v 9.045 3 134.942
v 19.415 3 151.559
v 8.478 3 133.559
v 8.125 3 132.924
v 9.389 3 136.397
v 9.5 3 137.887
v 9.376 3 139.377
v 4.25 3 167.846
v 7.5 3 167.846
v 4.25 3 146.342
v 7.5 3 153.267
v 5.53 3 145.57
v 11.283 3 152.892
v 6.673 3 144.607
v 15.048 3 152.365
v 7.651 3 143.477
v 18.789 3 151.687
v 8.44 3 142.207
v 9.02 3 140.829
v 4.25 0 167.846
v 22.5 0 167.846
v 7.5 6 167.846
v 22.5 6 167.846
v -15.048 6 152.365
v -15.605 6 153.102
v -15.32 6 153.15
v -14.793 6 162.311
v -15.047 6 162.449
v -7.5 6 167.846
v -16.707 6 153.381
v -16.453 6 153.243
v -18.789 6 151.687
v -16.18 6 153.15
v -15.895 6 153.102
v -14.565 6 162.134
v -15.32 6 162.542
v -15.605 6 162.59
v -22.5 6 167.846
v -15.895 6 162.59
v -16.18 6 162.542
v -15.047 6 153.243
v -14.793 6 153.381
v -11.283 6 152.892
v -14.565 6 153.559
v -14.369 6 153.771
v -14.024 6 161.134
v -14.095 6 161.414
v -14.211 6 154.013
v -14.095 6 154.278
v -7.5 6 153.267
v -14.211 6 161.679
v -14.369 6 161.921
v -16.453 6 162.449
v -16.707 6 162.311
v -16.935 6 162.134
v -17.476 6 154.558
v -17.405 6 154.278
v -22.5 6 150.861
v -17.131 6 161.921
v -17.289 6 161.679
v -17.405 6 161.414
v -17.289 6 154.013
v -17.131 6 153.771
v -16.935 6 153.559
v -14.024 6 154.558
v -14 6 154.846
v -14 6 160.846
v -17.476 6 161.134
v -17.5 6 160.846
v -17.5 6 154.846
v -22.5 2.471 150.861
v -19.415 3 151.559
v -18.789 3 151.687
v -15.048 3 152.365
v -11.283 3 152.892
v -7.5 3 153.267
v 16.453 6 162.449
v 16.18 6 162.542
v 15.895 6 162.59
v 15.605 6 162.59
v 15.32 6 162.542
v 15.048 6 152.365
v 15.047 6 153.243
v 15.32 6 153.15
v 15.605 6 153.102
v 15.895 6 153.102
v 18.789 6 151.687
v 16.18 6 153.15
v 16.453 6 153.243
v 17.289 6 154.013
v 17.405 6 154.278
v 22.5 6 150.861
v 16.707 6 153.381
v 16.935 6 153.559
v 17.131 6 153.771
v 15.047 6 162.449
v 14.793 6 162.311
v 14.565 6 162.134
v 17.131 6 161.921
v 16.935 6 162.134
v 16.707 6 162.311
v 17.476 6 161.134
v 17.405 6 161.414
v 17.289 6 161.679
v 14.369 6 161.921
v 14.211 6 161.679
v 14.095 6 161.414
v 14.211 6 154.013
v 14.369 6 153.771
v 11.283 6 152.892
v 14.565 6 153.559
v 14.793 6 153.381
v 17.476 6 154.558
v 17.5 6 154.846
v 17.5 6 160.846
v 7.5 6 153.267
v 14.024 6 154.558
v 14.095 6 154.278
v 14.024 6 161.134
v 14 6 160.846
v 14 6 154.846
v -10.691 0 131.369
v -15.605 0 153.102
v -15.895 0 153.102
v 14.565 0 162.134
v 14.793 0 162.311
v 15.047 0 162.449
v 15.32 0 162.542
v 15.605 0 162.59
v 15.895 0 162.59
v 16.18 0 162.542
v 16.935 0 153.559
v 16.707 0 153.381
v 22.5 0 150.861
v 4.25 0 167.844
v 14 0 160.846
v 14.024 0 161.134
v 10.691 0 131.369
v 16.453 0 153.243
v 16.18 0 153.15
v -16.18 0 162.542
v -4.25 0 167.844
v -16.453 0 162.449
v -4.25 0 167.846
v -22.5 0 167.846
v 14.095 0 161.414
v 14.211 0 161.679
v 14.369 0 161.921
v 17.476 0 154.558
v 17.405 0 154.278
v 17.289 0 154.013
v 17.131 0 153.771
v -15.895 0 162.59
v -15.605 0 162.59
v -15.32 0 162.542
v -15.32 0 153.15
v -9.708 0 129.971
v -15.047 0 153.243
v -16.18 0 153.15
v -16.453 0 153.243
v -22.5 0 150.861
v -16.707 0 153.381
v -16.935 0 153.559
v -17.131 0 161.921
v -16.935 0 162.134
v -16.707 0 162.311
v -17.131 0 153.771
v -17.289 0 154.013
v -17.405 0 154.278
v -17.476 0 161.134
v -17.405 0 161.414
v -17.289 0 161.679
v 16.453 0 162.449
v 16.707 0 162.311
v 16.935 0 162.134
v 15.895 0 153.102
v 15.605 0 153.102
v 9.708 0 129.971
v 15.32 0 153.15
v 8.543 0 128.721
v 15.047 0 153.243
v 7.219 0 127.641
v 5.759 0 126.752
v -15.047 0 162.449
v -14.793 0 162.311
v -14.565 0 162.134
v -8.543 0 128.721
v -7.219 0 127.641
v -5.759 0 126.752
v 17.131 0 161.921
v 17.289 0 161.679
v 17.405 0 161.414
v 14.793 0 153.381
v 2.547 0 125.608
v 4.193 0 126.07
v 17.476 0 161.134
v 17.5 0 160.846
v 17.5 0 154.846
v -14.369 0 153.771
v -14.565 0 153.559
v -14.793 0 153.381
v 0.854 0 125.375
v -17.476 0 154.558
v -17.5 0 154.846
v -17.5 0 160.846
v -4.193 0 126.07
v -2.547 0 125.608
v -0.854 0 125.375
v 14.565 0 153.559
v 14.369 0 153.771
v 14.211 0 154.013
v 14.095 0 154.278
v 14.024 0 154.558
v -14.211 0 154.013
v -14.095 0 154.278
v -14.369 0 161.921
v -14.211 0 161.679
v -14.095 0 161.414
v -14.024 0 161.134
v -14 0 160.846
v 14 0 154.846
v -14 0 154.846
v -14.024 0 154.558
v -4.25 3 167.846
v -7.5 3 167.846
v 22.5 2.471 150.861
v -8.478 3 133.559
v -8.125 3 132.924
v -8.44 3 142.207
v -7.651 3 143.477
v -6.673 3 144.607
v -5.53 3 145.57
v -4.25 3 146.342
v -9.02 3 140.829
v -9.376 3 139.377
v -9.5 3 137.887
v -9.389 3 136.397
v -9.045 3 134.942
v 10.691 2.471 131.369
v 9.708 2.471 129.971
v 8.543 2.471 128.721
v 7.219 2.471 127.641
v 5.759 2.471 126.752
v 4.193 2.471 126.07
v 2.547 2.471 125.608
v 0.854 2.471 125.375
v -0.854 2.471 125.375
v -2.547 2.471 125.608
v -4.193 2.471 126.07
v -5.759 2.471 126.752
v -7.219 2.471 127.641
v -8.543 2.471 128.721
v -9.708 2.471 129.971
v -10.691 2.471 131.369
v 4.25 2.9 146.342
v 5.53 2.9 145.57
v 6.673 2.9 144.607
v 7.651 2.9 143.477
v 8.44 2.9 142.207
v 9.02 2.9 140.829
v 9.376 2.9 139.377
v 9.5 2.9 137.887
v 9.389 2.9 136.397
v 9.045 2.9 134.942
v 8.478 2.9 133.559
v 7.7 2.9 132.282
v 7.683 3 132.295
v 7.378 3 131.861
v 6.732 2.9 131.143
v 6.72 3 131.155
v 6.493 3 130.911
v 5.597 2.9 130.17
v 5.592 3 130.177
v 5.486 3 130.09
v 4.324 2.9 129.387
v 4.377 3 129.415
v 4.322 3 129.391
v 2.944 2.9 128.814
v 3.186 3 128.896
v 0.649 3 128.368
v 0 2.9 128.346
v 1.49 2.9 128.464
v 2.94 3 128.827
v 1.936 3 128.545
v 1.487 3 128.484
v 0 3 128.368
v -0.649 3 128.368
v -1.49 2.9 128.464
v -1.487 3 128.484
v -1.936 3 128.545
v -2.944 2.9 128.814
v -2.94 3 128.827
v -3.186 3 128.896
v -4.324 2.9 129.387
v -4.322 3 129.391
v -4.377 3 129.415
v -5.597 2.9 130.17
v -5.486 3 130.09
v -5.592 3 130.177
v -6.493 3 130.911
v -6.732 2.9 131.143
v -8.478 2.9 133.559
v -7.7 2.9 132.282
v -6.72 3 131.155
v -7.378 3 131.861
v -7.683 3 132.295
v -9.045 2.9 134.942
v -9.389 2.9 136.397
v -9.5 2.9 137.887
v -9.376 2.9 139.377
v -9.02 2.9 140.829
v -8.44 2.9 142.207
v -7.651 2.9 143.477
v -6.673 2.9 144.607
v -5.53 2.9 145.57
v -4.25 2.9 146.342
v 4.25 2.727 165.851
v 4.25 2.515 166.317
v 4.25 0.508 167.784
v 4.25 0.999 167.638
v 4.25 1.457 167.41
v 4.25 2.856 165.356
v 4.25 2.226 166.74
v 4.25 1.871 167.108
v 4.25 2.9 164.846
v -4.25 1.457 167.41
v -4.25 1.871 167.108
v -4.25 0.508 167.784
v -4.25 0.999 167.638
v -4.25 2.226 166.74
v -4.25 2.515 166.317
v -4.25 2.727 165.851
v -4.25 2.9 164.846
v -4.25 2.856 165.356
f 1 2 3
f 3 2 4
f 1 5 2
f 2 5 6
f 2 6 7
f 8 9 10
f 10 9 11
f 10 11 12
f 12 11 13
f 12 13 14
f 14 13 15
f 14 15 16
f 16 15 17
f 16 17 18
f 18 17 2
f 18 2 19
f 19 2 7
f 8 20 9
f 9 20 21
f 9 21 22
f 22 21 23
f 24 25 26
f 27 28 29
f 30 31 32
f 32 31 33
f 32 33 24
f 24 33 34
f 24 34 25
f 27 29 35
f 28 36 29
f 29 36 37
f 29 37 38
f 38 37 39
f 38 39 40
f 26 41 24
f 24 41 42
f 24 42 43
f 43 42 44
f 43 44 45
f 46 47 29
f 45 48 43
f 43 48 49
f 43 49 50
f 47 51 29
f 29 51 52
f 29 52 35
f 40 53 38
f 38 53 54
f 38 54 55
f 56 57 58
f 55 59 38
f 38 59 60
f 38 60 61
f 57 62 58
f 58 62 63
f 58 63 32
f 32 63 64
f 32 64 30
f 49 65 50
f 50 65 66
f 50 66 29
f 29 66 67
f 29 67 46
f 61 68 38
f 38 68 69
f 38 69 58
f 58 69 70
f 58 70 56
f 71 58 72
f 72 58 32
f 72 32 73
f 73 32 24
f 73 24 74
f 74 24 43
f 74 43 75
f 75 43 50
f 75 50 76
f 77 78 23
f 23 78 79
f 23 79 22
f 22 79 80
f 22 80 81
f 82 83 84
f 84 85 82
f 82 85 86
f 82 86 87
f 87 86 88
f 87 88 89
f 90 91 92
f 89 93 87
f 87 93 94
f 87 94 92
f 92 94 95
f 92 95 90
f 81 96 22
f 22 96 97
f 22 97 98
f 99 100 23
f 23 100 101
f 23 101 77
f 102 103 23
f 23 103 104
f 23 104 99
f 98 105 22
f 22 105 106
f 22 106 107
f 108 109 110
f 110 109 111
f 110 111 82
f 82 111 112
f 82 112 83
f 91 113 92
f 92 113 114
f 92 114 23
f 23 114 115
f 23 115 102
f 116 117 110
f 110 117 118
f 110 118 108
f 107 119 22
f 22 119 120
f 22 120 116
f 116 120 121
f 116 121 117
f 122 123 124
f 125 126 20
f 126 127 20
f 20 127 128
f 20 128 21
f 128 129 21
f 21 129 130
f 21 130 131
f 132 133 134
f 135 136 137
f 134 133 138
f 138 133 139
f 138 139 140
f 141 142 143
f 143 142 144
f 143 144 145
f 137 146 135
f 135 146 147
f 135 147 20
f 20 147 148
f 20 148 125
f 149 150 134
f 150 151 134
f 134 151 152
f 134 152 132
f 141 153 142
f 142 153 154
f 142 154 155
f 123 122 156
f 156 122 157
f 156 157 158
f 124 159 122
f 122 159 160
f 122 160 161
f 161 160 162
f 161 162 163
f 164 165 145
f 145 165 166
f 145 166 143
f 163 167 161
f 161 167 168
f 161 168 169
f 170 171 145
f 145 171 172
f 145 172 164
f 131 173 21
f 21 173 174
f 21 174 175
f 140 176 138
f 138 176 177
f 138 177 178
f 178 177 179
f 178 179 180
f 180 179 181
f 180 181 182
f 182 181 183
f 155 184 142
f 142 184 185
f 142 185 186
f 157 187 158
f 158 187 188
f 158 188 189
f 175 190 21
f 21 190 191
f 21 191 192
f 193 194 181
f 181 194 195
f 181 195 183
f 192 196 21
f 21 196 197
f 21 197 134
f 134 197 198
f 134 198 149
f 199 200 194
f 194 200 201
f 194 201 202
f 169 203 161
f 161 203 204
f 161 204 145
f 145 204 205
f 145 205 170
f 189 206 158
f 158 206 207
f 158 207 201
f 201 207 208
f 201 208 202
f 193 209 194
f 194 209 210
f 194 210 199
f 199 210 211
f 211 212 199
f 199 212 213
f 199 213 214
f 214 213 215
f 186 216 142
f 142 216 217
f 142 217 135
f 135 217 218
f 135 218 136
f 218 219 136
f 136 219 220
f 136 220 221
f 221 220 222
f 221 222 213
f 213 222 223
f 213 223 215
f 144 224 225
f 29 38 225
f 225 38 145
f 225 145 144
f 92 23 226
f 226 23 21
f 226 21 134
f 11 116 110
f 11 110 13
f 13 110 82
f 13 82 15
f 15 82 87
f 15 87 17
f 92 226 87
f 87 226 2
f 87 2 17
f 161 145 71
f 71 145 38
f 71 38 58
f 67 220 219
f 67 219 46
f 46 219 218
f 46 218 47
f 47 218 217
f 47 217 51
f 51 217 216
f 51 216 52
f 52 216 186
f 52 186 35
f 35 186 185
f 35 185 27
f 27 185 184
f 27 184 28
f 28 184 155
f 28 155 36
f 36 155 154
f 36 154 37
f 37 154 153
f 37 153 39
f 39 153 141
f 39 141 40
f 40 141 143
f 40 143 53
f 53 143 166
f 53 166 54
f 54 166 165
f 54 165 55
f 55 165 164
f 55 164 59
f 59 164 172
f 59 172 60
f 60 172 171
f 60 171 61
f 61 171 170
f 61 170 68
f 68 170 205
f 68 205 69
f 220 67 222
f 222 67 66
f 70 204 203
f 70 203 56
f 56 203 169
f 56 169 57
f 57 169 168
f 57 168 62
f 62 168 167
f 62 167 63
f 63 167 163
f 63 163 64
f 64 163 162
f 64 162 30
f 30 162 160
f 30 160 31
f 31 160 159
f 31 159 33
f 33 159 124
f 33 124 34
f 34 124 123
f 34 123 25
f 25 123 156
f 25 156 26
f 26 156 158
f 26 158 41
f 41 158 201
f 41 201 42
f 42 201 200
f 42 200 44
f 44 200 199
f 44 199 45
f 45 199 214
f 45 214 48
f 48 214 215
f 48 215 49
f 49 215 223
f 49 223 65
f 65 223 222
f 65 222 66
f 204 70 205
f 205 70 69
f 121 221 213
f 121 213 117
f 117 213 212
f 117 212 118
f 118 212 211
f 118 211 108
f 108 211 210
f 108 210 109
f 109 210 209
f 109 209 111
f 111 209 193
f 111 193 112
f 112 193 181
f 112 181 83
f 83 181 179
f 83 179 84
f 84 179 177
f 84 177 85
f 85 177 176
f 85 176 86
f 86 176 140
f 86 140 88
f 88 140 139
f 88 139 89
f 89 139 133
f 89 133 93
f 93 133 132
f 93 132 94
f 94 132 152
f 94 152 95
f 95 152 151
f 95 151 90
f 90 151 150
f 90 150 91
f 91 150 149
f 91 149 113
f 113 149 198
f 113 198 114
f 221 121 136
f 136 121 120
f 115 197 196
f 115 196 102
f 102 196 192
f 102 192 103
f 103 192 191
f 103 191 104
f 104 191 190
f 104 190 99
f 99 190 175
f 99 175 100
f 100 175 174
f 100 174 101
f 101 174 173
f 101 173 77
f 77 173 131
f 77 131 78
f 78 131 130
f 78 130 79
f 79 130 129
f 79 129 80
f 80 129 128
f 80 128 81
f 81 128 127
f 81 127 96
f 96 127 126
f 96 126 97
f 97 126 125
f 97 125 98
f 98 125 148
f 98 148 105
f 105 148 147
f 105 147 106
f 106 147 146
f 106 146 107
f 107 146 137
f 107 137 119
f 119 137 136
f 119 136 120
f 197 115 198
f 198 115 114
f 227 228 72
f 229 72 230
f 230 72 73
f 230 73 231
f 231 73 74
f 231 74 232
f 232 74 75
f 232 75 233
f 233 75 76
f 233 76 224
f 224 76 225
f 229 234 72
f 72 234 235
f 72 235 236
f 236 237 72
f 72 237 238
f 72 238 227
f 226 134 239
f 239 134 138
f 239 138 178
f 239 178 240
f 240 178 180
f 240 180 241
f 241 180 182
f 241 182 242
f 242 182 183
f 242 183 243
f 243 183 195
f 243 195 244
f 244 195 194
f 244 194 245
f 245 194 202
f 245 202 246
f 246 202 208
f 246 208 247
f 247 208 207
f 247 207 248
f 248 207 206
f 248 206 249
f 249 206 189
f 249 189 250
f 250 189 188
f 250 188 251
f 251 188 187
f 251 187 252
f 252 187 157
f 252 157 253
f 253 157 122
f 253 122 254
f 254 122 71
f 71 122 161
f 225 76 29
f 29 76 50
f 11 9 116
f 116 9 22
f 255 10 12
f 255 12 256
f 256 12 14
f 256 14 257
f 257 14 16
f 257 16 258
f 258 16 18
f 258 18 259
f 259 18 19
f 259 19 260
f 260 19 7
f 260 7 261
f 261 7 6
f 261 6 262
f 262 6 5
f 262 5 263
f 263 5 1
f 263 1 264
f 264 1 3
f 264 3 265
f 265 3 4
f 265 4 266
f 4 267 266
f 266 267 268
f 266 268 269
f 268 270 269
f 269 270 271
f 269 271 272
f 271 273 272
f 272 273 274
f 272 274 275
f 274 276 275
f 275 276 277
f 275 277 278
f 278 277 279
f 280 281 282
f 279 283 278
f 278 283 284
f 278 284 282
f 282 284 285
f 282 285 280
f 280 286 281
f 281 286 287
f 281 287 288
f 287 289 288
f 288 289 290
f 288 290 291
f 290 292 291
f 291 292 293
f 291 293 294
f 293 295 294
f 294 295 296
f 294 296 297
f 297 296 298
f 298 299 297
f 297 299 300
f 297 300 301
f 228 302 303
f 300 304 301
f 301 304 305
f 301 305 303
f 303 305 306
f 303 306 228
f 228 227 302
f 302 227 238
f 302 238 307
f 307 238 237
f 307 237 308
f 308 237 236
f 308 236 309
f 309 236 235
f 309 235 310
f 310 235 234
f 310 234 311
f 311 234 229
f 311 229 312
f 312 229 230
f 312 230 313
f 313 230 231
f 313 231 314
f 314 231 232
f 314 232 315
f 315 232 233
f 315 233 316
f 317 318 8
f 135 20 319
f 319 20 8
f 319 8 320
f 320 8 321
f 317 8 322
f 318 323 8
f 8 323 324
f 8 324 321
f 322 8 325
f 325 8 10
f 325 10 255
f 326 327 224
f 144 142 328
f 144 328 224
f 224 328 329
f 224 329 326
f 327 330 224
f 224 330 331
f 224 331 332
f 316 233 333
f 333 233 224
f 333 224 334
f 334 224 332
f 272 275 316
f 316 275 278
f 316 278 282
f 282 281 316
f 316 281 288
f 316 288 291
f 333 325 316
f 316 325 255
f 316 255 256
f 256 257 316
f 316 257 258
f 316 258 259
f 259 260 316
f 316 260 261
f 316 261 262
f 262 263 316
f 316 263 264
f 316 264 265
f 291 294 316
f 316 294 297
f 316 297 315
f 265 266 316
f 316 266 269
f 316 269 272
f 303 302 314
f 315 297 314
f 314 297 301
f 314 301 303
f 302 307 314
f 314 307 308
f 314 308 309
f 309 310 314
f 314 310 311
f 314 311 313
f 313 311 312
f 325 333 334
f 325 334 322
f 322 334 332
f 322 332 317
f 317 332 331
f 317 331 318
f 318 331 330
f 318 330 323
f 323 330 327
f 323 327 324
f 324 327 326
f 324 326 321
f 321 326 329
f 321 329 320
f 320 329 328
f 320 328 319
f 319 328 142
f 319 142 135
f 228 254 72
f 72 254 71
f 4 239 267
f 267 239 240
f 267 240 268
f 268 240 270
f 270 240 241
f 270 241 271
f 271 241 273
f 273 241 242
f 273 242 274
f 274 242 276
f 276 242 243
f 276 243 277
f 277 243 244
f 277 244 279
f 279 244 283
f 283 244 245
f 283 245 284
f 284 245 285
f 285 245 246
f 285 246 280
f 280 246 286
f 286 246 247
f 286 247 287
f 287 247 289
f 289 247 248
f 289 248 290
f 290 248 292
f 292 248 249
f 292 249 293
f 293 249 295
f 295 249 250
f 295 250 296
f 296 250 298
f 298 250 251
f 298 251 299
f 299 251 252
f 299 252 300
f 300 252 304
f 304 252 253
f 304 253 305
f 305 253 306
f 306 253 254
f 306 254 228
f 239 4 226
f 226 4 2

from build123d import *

# Parameters (mm, degrees)
BOSS_EXTRUDE1_DEPTH = 6
BOSS_EXTRUDE2_DEPTH = 3
SKETCH3_W           = 15
SKETCH3_H           = 14.578547678
CUT_EXTRUDE1_DEPTH  = 3
CUT_EXTRUDE2_DEPTH  = 0.1
FILLET1_R           = 3
CHAMFER1_SIZE       = 0.528980942
CHAMFER1_SIZE_2     = 3


with BuildPart() as part:
    # Sketch1 → Boss-Extrude1 (new body)
    with BuildSketch(Plane(origin=(0, 0, 0), x_dir=(1, 0, 0), z_dir=(0, 1, 0))):
        with BuildLine():
            Line((22.5, -167.846096908), (22.5, -150.861139315))
            ThreePointArc((22.5, -150.861139315), (0, -153.564064606), (-22.5, -150.861139315))
            Line((-22.5, -150.861139315), (-22.5, -167.846096908))
            Line((-22.5, -167.846096908), (22.5, -167.846096908))
        make_face()
        with BuildLine():
            Line((-17.5, -154.846096908), (-17.5, -160.846096908))
            ThreePointArc((-17.5, -160.846096908), (-15.75, -162.596096908), (-14, -160.846096908))
            Line((-14, -160.846096908), (-14, -154.846096908))
            ThreePointArc((-14, -154.846096908), (-15.75, -153.096096908), (-17.5, -154.846096908))
        make_face(mode=Mode.SUBTRACT)
        with BuildLine():
            Line((14, -154.846096908), (14, -160.846096908))
            ThreePointArc((14, -160.846096908), (15.75, -162.596096908), (17.5, -160.846096908))
            Line((17.5, -160.846096908), (17.5, -154.846096908))
            ThreePointArc((17.5, -154.846096908), (15.75, -153.096096908), (14, -154.846096908))
        make_face(mode=Mode.SUBTRACT)
    extrude(amount=BOSS_EXTRUDE1_DEPTH)

    # Sketch2 → Boss-Extrude2 (add)
    with BuildSketch(Plane(origin=(0, 0, 0), x_dir=(1, 0, 0), z_dir=(0, 1, 0))):
        with BuildLine():
            Line((-22.5, -167.846096908), (22.5, -167.846096908))
            Line((22.5, -167.846096908), (22.5, -150.861139315))
            Line((22.5, -150.861139315), (10.691043752, -131.369092702))
            ThreePointArc((10.691043752, -131.369092702), (0, -125.346096908), (-10.691043752, -131.369092702))
            Line((-10.691043752, -131.369092702), (-22.5, -150.861139315))
            Line((-22.5, -150.861139315), (-22.5, -167.846096908))
        make_face()
        with BuildLine():
            Line((-17.5, -154.846096908), (-17.5, -160.846096908))
            ThreePointArc((-17.5, -160.846096908), (-15.75, -162.596096908), (-14, -160.846096908))
            Line((-14, -160.846096908), (-14, -154.846096908))
            ThreePointArc((-14, -154.846096908), (-15.75, -153.096096908), (-17.5, -154.846096908))
        make_face(mode=Mode.SUBTRACT)
        with BuildLine():
            Line((14, -154.846096908), (14, -160.846096908))
            ThreePointArc((14, -160.846096908), (15.75, -162.596096908), (17.5, -160.846096908))
            Line((17.5, -160.846096908), (17.5, -154.846096908))
            ThreePointArc((17.5, -154.846096908), (15.75, -153.096096908), (14, -154.846096908))
        make_face(mode=Mode.SUBTRACT)
    extrude(amount=BOSS_EXTRUDE2_DEPTH)

    # Sketch3 → Cut-Extrude1 (cut)
    with BuildSketch(Plane(origin=(0, 6, 0), x_dir=(1, 0, 0), z_dir=(0, 1, 0))):
        with Locations((0, -160.556823069)):
            Rectangle(SKETCH3_W, SKETCH3_H)
    extrude(amount=-CUT_EXTRUDE1_DEPTH, mode=Mode.SUBTRACT)

    # Sketch4 → Cut-Extrude2 (cut)
    with BuildSketch(Plane(origin=(0, 3, 0), x_dir=(1, 0, 0), z_dir=(0, 1, 0))):
        with BuildLine():
            Line((-4.25, -146.342419642), (-4.25, -167.846096908))
            Line((-4.25, -167.846096908), (4.25, -167.846096908))
            Line((4.25, -167.846096908), (4.25, -146.342419642))
            ThreePointArc((4.25, -146.342419642), (0, -128.346096908), (-4.25, -146.342419642))
        make_face()
    extrude(amount=-CUT_EXTRUDE2_DEPTH, mode=Mode.SUBTRACT)

    # Fillet1
    # the kernel refuses this fillet: 3 mm, written as the material it takes off along each edge
    with BuildSketch(Plane(origin=(-4.25, 2.9, 167.846096908), x_dir=(0, -1, 0), z_dir=(1, 0, 0))) as fillet1_piece_1:
        with BuildLine():
            CenterArc((FILLET1_R, FILLET1_R), FILLET1_R, 180, 90)
            Line((0, FILLET1_R), (0, 0))
            Line((0, 0), (FILLET1_R, 0))
        make_face()
    extrude(amount=8.5, mode=Mode.SUBTRACT)

    # Chamfer1
    # the kernel refuses this chamfer: 3, 0.528980942 mm, written as the material it takes off along each edge
    with BuildSketch(Plane(origin=(26.539379212, 3, 157.528601387), x_dir=(0.1797282148286355, -0.9776715712462603, -0.10888557099717337), z_dir=(-0.5181603365296565, 0, -0.8552835001608959))) as chamfer1_piece_1_section:
        Polygon((CHAMFER1_SIZE * 0.977671571478, CHAMFER1_SIZE * 0.210138760817), (-CHAMFER1_SIZE_2 * 0.210138760767, CHAMFER1_SIZE_2 * 0.977671571246), (0, 0), align=None)
    chamfer1_piece_1 = extrude(amount=30.585774986, mode=Mode.PRIVATE)
    chamfer1_piece_1 = chamfer1_piece_1 & Plane(origin=(0, 2.81678549, 58.564064606), x_dir=(0.23684210526315766, 0, 0.9715481548407755), z_dir=(0, -1, 0)) * Cylinder(95, 73, mode=Mode.PRIVATE)
    add(chamfer1_piece_1, mode=Mode.SUBTRACT)
    with BuildSketch(Plane(origin=(0, 3, 137.846096908), x_dir=(0.8552835001609747, 0, -0.5181603365295261), z_dir=(0.5181603365295261, 0, 0.8552835001609747))) as chamfer1_piece_2:
        Polygon((12.5, -CHAMFER1_SIZE), (12.5 - CHAMFER1_SIZE_2, 0), (12.5, 0), align=None)
    revolve(axis=Axis((0, 3, 137.846096908), (0, 1, 0)), revolution_arc=117.582137566, mode=Mode.SUBTRACT)
    with BuildSketch(Plane(origin=(-10.691043752, 3, 131.369092702), x_dir=(0.8552644030796279, 0.0066825316561016845, 0.5181487668570801), z_dir=(-0.5181603365296562, 0, 0.855283500160896))) as chamfer1_piece_3_section:
        Polygon((CHAMFER1_SIZE_2 * 0.999977671636, -CHAMFER1_SIZE_2 * 0.0066825316561), (-CHAMFER1_SIZE * 0.00668253165769, -CHAMFER1_SIZE * 0.999977671873), (0, 0), align=None)
    chamfer1_piece_3 = extrude(amount=30.585774986, mode=Mode.PRIVATE)
    chamfer1_piece_3 = chamfer1_piece_3 & Plane(origin=(0, 2.847950314, 58.564064606), x_dir=(0.23684210526315766, 0, 0.9715481548407755), z_dir=(0, -1, 0)) * Cylinder(95, 74, mode=Mode.PRIVATE)
    add(chamfer1_piece_3, mode=Mode.SUBTRACT)


solid = part.part
